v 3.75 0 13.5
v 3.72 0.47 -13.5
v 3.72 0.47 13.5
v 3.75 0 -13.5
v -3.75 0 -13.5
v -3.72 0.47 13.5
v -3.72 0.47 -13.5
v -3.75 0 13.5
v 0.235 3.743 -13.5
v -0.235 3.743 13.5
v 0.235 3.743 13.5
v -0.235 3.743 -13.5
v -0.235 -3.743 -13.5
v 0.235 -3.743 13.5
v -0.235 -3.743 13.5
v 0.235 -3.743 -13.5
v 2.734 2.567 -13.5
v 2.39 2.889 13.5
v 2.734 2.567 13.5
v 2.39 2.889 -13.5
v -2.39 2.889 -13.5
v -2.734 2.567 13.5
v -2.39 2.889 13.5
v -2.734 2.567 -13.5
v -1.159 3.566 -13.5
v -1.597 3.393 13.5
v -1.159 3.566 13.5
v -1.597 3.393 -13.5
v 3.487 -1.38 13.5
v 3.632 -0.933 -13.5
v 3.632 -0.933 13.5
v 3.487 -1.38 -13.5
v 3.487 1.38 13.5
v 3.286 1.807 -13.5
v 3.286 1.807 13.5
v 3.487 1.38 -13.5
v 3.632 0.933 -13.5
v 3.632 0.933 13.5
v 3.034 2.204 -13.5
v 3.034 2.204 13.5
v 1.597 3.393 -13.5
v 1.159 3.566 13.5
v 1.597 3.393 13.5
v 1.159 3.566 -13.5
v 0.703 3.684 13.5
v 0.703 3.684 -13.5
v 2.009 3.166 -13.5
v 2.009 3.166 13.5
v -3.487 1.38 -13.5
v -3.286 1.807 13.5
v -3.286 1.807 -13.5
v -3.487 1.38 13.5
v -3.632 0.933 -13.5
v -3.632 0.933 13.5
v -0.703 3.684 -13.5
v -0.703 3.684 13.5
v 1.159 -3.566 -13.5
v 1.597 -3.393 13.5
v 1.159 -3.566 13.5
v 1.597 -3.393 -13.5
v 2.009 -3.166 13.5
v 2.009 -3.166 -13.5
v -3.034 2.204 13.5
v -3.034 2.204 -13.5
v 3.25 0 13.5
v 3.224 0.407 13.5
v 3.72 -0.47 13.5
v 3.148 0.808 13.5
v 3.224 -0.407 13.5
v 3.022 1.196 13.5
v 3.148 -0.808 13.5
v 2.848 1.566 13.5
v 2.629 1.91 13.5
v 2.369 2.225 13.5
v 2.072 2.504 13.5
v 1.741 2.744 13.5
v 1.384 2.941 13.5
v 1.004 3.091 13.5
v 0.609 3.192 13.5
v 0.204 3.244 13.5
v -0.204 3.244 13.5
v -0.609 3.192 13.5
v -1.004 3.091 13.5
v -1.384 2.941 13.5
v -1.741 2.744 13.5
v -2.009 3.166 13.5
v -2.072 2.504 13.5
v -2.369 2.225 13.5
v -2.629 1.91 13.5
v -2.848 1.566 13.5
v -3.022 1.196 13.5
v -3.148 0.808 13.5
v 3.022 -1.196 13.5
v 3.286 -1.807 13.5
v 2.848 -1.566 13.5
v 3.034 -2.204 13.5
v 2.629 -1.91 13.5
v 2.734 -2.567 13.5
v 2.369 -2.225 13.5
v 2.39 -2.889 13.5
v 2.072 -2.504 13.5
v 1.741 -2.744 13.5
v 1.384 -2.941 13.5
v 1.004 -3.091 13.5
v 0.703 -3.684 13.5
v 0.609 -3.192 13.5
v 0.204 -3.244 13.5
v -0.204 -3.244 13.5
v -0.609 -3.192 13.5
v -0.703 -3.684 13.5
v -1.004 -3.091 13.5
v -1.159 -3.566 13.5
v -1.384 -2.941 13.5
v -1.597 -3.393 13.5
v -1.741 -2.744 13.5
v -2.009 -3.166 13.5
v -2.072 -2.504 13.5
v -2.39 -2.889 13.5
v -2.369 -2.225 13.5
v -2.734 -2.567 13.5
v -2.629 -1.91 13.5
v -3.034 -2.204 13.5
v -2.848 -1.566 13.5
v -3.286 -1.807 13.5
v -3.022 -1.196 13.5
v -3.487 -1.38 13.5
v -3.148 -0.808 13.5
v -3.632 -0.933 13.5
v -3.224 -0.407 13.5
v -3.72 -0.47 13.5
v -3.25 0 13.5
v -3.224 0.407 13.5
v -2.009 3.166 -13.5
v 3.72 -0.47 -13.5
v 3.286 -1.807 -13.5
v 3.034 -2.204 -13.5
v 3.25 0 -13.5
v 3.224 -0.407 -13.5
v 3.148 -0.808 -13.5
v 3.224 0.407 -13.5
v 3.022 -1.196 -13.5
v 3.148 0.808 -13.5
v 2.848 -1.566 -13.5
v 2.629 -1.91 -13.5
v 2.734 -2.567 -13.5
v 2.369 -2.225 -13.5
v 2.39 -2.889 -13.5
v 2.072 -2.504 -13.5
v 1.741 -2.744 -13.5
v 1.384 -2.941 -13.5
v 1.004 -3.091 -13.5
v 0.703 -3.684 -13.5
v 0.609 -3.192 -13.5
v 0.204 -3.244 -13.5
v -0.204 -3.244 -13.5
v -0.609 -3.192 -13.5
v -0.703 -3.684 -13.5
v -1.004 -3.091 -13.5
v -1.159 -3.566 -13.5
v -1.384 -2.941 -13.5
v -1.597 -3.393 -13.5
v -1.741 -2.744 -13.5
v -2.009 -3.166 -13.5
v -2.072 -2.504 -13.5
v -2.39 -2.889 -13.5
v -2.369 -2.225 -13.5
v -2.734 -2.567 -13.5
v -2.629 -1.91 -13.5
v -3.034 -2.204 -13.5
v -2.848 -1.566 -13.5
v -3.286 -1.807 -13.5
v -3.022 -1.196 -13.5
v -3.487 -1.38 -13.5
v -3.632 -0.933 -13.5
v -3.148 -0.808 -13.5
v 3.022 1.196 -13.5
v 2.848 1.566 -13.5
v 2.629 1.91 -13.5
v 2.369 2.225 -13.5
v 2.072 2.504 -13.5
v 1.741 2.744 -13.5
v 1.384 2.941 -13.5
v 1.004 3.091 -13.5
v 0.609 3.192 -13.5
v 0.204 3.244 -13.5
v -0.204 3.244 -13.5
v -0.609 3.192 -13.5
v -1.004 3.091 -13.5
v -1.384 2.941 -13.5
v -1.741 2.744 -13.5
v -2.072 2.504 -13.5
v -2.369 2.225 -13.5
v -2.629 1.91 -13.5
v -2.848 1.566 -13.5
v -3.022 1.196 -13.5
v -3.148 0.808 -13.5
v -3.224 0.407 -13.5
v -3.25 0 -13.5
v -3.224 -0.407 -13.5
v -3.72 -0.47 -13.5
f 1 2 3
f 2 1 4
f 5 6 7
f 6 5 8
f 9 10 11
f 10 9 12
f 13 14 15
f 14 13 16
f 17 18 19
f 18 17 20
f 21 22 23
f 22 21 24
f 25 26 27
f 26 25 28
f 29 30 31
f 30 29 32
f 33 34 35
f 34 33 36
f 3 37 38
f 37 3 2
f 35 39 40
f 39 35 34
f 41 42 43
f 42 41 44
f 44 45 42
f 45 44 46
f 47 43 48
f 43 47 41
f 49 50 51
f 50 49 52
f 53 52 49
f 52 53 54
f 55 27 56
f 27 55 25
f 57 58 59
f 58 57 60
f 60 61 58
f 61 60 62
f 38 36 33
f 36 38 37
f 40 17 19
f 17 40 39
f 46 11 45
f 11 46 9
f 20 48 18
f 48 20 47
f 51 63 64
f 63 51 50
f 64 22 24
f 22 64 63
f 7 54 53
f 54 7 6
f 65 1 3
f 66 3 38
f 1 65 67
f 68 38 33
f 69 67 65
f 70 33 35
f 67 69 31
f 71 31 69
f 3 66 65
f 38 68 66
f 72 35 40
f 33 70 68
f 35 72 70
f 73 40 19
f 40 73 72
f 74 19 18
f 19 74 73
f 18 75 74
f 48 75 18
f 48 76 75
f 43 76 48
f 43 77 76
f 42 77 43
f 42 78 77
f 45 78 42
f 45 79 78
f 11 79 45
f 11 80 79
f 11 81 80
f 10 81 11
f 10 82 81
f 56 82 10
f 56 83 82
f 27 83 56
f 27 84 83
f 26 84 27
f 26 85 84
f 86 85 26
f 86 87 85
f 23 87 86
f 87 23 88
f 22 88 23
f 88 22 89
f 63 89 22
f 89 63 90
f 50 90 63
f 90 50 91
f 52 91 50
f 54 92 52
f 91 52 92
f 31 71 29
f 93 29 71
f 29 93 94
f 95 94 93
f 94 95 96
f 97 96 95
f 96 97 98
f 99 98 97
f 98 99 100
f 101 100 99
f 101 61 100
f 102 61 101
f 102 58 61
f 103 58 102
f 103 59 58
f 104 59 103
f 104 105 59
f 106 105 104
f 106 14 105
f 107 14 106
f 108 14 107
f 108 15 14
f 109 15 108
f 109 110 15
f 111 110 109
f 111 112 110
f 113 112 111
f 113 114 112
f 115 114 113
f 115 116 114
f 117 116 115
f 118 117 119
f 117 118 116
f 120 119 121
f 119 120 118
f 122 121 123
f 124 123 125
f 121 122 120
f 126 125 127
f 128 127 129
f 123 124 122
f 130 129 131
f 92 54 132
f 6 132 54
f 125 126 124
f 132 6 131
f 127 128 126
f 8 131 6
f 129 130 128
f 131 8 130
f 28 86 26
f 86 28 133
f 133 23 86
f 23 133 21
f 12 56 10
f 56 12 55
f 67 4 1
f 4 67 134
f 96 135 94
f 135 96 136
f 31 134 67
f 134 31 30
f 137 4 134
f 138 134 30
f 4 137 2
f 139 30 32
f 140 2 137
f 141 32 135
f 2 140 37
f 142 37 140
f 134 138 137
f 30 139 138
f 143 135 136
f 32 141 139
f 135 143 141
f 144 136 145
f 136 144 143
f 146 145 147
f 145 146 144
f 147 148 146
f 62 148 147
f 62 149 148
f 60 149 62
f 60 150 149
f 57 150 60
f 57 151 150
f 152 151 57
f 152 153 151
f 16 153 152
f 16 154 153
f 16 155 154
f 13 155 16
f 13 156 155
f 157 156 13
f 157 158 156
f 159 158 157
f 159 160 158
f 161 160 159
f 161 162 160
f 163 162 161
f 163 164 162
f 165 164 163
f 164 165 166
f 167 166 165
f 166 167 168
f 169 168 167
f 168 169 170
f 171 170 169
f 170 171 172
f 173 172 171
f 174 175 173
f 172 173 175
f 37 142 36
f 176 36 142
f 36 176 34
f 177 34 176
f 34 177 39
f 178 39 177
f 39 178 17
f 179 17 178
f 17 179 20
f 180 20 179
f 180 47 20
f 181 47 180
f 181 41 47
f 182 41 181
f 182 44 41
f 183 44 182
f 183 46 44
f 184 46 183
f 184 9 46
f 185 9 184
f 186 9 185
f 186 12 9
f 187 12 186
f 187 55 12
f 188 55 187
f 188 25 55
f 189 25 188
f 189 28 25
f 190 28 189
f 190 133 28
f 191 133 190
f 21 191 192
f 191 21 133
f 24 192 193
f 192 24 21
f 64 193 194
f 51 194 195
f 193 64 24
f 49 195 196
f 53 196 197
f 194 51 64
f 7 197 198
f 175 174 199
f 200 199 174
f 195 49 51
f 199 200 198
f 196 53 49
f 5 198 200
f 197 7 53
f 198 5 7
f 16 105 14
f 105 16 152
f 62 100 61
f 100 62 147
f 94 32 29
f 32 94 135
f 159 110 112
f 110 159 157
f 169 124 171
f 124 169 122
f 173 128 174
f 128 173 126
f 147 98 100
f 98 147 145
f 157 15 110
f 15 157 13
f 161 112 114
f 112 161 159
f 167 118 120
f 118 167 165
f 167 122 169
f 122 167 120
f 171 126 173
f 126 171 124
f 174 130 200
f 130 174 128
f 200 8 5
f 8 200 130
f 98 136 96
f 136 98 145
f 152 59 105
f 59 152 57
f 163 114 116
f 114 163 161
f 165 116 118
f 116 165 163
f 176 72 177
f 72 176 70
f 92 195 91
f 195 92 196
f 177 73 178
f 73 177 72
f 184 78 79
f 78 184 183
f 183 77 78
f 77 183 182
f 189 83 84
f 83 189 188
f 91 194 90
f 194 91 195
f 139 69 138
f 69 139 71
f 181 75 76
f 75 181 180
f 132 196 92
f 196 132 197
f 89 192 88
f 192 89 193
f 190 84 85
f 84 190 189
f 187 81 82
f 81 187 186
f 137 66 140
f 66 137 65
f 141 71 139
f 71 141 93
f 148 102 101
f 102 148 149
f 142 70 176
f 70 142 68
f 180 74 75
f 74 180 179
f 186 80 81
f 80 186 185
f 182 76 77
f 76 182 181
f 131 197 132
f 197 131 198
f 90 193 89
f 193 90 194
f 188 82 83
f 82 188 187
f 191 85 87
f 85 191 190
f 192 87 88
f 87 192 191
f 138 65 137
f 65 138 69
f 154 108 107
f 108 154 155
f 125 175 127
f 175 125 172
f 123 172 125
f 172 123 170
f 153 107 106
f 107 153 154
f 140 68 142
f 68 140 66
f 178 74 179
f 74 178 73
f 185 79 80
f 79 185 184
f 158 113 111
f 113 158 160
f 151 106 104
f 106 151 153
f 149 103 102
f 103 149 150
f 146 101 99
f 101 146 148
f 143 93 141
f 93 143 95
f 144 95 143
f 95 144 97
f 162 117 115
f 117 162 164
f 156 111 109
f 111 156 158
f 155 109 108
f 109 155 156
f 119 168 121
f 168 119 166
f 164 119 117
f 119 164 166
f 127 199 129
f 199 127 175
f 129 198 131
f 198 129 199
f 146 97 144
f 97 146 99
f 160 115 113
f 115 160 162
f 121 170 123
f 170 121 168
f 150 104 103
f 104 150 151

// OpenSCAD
$fn = 50;


difference() {
	union() {
		translate(v = [0, 0, -13.5000000000]) {
			cylinder(h = 27, r = 3.7500000000);
		}
	}
	union() {
		translate(v = [0, 0, -100.0000000000]) {
			cylinder(h = 200, r = 3.2500000000);
		}
	}
}
